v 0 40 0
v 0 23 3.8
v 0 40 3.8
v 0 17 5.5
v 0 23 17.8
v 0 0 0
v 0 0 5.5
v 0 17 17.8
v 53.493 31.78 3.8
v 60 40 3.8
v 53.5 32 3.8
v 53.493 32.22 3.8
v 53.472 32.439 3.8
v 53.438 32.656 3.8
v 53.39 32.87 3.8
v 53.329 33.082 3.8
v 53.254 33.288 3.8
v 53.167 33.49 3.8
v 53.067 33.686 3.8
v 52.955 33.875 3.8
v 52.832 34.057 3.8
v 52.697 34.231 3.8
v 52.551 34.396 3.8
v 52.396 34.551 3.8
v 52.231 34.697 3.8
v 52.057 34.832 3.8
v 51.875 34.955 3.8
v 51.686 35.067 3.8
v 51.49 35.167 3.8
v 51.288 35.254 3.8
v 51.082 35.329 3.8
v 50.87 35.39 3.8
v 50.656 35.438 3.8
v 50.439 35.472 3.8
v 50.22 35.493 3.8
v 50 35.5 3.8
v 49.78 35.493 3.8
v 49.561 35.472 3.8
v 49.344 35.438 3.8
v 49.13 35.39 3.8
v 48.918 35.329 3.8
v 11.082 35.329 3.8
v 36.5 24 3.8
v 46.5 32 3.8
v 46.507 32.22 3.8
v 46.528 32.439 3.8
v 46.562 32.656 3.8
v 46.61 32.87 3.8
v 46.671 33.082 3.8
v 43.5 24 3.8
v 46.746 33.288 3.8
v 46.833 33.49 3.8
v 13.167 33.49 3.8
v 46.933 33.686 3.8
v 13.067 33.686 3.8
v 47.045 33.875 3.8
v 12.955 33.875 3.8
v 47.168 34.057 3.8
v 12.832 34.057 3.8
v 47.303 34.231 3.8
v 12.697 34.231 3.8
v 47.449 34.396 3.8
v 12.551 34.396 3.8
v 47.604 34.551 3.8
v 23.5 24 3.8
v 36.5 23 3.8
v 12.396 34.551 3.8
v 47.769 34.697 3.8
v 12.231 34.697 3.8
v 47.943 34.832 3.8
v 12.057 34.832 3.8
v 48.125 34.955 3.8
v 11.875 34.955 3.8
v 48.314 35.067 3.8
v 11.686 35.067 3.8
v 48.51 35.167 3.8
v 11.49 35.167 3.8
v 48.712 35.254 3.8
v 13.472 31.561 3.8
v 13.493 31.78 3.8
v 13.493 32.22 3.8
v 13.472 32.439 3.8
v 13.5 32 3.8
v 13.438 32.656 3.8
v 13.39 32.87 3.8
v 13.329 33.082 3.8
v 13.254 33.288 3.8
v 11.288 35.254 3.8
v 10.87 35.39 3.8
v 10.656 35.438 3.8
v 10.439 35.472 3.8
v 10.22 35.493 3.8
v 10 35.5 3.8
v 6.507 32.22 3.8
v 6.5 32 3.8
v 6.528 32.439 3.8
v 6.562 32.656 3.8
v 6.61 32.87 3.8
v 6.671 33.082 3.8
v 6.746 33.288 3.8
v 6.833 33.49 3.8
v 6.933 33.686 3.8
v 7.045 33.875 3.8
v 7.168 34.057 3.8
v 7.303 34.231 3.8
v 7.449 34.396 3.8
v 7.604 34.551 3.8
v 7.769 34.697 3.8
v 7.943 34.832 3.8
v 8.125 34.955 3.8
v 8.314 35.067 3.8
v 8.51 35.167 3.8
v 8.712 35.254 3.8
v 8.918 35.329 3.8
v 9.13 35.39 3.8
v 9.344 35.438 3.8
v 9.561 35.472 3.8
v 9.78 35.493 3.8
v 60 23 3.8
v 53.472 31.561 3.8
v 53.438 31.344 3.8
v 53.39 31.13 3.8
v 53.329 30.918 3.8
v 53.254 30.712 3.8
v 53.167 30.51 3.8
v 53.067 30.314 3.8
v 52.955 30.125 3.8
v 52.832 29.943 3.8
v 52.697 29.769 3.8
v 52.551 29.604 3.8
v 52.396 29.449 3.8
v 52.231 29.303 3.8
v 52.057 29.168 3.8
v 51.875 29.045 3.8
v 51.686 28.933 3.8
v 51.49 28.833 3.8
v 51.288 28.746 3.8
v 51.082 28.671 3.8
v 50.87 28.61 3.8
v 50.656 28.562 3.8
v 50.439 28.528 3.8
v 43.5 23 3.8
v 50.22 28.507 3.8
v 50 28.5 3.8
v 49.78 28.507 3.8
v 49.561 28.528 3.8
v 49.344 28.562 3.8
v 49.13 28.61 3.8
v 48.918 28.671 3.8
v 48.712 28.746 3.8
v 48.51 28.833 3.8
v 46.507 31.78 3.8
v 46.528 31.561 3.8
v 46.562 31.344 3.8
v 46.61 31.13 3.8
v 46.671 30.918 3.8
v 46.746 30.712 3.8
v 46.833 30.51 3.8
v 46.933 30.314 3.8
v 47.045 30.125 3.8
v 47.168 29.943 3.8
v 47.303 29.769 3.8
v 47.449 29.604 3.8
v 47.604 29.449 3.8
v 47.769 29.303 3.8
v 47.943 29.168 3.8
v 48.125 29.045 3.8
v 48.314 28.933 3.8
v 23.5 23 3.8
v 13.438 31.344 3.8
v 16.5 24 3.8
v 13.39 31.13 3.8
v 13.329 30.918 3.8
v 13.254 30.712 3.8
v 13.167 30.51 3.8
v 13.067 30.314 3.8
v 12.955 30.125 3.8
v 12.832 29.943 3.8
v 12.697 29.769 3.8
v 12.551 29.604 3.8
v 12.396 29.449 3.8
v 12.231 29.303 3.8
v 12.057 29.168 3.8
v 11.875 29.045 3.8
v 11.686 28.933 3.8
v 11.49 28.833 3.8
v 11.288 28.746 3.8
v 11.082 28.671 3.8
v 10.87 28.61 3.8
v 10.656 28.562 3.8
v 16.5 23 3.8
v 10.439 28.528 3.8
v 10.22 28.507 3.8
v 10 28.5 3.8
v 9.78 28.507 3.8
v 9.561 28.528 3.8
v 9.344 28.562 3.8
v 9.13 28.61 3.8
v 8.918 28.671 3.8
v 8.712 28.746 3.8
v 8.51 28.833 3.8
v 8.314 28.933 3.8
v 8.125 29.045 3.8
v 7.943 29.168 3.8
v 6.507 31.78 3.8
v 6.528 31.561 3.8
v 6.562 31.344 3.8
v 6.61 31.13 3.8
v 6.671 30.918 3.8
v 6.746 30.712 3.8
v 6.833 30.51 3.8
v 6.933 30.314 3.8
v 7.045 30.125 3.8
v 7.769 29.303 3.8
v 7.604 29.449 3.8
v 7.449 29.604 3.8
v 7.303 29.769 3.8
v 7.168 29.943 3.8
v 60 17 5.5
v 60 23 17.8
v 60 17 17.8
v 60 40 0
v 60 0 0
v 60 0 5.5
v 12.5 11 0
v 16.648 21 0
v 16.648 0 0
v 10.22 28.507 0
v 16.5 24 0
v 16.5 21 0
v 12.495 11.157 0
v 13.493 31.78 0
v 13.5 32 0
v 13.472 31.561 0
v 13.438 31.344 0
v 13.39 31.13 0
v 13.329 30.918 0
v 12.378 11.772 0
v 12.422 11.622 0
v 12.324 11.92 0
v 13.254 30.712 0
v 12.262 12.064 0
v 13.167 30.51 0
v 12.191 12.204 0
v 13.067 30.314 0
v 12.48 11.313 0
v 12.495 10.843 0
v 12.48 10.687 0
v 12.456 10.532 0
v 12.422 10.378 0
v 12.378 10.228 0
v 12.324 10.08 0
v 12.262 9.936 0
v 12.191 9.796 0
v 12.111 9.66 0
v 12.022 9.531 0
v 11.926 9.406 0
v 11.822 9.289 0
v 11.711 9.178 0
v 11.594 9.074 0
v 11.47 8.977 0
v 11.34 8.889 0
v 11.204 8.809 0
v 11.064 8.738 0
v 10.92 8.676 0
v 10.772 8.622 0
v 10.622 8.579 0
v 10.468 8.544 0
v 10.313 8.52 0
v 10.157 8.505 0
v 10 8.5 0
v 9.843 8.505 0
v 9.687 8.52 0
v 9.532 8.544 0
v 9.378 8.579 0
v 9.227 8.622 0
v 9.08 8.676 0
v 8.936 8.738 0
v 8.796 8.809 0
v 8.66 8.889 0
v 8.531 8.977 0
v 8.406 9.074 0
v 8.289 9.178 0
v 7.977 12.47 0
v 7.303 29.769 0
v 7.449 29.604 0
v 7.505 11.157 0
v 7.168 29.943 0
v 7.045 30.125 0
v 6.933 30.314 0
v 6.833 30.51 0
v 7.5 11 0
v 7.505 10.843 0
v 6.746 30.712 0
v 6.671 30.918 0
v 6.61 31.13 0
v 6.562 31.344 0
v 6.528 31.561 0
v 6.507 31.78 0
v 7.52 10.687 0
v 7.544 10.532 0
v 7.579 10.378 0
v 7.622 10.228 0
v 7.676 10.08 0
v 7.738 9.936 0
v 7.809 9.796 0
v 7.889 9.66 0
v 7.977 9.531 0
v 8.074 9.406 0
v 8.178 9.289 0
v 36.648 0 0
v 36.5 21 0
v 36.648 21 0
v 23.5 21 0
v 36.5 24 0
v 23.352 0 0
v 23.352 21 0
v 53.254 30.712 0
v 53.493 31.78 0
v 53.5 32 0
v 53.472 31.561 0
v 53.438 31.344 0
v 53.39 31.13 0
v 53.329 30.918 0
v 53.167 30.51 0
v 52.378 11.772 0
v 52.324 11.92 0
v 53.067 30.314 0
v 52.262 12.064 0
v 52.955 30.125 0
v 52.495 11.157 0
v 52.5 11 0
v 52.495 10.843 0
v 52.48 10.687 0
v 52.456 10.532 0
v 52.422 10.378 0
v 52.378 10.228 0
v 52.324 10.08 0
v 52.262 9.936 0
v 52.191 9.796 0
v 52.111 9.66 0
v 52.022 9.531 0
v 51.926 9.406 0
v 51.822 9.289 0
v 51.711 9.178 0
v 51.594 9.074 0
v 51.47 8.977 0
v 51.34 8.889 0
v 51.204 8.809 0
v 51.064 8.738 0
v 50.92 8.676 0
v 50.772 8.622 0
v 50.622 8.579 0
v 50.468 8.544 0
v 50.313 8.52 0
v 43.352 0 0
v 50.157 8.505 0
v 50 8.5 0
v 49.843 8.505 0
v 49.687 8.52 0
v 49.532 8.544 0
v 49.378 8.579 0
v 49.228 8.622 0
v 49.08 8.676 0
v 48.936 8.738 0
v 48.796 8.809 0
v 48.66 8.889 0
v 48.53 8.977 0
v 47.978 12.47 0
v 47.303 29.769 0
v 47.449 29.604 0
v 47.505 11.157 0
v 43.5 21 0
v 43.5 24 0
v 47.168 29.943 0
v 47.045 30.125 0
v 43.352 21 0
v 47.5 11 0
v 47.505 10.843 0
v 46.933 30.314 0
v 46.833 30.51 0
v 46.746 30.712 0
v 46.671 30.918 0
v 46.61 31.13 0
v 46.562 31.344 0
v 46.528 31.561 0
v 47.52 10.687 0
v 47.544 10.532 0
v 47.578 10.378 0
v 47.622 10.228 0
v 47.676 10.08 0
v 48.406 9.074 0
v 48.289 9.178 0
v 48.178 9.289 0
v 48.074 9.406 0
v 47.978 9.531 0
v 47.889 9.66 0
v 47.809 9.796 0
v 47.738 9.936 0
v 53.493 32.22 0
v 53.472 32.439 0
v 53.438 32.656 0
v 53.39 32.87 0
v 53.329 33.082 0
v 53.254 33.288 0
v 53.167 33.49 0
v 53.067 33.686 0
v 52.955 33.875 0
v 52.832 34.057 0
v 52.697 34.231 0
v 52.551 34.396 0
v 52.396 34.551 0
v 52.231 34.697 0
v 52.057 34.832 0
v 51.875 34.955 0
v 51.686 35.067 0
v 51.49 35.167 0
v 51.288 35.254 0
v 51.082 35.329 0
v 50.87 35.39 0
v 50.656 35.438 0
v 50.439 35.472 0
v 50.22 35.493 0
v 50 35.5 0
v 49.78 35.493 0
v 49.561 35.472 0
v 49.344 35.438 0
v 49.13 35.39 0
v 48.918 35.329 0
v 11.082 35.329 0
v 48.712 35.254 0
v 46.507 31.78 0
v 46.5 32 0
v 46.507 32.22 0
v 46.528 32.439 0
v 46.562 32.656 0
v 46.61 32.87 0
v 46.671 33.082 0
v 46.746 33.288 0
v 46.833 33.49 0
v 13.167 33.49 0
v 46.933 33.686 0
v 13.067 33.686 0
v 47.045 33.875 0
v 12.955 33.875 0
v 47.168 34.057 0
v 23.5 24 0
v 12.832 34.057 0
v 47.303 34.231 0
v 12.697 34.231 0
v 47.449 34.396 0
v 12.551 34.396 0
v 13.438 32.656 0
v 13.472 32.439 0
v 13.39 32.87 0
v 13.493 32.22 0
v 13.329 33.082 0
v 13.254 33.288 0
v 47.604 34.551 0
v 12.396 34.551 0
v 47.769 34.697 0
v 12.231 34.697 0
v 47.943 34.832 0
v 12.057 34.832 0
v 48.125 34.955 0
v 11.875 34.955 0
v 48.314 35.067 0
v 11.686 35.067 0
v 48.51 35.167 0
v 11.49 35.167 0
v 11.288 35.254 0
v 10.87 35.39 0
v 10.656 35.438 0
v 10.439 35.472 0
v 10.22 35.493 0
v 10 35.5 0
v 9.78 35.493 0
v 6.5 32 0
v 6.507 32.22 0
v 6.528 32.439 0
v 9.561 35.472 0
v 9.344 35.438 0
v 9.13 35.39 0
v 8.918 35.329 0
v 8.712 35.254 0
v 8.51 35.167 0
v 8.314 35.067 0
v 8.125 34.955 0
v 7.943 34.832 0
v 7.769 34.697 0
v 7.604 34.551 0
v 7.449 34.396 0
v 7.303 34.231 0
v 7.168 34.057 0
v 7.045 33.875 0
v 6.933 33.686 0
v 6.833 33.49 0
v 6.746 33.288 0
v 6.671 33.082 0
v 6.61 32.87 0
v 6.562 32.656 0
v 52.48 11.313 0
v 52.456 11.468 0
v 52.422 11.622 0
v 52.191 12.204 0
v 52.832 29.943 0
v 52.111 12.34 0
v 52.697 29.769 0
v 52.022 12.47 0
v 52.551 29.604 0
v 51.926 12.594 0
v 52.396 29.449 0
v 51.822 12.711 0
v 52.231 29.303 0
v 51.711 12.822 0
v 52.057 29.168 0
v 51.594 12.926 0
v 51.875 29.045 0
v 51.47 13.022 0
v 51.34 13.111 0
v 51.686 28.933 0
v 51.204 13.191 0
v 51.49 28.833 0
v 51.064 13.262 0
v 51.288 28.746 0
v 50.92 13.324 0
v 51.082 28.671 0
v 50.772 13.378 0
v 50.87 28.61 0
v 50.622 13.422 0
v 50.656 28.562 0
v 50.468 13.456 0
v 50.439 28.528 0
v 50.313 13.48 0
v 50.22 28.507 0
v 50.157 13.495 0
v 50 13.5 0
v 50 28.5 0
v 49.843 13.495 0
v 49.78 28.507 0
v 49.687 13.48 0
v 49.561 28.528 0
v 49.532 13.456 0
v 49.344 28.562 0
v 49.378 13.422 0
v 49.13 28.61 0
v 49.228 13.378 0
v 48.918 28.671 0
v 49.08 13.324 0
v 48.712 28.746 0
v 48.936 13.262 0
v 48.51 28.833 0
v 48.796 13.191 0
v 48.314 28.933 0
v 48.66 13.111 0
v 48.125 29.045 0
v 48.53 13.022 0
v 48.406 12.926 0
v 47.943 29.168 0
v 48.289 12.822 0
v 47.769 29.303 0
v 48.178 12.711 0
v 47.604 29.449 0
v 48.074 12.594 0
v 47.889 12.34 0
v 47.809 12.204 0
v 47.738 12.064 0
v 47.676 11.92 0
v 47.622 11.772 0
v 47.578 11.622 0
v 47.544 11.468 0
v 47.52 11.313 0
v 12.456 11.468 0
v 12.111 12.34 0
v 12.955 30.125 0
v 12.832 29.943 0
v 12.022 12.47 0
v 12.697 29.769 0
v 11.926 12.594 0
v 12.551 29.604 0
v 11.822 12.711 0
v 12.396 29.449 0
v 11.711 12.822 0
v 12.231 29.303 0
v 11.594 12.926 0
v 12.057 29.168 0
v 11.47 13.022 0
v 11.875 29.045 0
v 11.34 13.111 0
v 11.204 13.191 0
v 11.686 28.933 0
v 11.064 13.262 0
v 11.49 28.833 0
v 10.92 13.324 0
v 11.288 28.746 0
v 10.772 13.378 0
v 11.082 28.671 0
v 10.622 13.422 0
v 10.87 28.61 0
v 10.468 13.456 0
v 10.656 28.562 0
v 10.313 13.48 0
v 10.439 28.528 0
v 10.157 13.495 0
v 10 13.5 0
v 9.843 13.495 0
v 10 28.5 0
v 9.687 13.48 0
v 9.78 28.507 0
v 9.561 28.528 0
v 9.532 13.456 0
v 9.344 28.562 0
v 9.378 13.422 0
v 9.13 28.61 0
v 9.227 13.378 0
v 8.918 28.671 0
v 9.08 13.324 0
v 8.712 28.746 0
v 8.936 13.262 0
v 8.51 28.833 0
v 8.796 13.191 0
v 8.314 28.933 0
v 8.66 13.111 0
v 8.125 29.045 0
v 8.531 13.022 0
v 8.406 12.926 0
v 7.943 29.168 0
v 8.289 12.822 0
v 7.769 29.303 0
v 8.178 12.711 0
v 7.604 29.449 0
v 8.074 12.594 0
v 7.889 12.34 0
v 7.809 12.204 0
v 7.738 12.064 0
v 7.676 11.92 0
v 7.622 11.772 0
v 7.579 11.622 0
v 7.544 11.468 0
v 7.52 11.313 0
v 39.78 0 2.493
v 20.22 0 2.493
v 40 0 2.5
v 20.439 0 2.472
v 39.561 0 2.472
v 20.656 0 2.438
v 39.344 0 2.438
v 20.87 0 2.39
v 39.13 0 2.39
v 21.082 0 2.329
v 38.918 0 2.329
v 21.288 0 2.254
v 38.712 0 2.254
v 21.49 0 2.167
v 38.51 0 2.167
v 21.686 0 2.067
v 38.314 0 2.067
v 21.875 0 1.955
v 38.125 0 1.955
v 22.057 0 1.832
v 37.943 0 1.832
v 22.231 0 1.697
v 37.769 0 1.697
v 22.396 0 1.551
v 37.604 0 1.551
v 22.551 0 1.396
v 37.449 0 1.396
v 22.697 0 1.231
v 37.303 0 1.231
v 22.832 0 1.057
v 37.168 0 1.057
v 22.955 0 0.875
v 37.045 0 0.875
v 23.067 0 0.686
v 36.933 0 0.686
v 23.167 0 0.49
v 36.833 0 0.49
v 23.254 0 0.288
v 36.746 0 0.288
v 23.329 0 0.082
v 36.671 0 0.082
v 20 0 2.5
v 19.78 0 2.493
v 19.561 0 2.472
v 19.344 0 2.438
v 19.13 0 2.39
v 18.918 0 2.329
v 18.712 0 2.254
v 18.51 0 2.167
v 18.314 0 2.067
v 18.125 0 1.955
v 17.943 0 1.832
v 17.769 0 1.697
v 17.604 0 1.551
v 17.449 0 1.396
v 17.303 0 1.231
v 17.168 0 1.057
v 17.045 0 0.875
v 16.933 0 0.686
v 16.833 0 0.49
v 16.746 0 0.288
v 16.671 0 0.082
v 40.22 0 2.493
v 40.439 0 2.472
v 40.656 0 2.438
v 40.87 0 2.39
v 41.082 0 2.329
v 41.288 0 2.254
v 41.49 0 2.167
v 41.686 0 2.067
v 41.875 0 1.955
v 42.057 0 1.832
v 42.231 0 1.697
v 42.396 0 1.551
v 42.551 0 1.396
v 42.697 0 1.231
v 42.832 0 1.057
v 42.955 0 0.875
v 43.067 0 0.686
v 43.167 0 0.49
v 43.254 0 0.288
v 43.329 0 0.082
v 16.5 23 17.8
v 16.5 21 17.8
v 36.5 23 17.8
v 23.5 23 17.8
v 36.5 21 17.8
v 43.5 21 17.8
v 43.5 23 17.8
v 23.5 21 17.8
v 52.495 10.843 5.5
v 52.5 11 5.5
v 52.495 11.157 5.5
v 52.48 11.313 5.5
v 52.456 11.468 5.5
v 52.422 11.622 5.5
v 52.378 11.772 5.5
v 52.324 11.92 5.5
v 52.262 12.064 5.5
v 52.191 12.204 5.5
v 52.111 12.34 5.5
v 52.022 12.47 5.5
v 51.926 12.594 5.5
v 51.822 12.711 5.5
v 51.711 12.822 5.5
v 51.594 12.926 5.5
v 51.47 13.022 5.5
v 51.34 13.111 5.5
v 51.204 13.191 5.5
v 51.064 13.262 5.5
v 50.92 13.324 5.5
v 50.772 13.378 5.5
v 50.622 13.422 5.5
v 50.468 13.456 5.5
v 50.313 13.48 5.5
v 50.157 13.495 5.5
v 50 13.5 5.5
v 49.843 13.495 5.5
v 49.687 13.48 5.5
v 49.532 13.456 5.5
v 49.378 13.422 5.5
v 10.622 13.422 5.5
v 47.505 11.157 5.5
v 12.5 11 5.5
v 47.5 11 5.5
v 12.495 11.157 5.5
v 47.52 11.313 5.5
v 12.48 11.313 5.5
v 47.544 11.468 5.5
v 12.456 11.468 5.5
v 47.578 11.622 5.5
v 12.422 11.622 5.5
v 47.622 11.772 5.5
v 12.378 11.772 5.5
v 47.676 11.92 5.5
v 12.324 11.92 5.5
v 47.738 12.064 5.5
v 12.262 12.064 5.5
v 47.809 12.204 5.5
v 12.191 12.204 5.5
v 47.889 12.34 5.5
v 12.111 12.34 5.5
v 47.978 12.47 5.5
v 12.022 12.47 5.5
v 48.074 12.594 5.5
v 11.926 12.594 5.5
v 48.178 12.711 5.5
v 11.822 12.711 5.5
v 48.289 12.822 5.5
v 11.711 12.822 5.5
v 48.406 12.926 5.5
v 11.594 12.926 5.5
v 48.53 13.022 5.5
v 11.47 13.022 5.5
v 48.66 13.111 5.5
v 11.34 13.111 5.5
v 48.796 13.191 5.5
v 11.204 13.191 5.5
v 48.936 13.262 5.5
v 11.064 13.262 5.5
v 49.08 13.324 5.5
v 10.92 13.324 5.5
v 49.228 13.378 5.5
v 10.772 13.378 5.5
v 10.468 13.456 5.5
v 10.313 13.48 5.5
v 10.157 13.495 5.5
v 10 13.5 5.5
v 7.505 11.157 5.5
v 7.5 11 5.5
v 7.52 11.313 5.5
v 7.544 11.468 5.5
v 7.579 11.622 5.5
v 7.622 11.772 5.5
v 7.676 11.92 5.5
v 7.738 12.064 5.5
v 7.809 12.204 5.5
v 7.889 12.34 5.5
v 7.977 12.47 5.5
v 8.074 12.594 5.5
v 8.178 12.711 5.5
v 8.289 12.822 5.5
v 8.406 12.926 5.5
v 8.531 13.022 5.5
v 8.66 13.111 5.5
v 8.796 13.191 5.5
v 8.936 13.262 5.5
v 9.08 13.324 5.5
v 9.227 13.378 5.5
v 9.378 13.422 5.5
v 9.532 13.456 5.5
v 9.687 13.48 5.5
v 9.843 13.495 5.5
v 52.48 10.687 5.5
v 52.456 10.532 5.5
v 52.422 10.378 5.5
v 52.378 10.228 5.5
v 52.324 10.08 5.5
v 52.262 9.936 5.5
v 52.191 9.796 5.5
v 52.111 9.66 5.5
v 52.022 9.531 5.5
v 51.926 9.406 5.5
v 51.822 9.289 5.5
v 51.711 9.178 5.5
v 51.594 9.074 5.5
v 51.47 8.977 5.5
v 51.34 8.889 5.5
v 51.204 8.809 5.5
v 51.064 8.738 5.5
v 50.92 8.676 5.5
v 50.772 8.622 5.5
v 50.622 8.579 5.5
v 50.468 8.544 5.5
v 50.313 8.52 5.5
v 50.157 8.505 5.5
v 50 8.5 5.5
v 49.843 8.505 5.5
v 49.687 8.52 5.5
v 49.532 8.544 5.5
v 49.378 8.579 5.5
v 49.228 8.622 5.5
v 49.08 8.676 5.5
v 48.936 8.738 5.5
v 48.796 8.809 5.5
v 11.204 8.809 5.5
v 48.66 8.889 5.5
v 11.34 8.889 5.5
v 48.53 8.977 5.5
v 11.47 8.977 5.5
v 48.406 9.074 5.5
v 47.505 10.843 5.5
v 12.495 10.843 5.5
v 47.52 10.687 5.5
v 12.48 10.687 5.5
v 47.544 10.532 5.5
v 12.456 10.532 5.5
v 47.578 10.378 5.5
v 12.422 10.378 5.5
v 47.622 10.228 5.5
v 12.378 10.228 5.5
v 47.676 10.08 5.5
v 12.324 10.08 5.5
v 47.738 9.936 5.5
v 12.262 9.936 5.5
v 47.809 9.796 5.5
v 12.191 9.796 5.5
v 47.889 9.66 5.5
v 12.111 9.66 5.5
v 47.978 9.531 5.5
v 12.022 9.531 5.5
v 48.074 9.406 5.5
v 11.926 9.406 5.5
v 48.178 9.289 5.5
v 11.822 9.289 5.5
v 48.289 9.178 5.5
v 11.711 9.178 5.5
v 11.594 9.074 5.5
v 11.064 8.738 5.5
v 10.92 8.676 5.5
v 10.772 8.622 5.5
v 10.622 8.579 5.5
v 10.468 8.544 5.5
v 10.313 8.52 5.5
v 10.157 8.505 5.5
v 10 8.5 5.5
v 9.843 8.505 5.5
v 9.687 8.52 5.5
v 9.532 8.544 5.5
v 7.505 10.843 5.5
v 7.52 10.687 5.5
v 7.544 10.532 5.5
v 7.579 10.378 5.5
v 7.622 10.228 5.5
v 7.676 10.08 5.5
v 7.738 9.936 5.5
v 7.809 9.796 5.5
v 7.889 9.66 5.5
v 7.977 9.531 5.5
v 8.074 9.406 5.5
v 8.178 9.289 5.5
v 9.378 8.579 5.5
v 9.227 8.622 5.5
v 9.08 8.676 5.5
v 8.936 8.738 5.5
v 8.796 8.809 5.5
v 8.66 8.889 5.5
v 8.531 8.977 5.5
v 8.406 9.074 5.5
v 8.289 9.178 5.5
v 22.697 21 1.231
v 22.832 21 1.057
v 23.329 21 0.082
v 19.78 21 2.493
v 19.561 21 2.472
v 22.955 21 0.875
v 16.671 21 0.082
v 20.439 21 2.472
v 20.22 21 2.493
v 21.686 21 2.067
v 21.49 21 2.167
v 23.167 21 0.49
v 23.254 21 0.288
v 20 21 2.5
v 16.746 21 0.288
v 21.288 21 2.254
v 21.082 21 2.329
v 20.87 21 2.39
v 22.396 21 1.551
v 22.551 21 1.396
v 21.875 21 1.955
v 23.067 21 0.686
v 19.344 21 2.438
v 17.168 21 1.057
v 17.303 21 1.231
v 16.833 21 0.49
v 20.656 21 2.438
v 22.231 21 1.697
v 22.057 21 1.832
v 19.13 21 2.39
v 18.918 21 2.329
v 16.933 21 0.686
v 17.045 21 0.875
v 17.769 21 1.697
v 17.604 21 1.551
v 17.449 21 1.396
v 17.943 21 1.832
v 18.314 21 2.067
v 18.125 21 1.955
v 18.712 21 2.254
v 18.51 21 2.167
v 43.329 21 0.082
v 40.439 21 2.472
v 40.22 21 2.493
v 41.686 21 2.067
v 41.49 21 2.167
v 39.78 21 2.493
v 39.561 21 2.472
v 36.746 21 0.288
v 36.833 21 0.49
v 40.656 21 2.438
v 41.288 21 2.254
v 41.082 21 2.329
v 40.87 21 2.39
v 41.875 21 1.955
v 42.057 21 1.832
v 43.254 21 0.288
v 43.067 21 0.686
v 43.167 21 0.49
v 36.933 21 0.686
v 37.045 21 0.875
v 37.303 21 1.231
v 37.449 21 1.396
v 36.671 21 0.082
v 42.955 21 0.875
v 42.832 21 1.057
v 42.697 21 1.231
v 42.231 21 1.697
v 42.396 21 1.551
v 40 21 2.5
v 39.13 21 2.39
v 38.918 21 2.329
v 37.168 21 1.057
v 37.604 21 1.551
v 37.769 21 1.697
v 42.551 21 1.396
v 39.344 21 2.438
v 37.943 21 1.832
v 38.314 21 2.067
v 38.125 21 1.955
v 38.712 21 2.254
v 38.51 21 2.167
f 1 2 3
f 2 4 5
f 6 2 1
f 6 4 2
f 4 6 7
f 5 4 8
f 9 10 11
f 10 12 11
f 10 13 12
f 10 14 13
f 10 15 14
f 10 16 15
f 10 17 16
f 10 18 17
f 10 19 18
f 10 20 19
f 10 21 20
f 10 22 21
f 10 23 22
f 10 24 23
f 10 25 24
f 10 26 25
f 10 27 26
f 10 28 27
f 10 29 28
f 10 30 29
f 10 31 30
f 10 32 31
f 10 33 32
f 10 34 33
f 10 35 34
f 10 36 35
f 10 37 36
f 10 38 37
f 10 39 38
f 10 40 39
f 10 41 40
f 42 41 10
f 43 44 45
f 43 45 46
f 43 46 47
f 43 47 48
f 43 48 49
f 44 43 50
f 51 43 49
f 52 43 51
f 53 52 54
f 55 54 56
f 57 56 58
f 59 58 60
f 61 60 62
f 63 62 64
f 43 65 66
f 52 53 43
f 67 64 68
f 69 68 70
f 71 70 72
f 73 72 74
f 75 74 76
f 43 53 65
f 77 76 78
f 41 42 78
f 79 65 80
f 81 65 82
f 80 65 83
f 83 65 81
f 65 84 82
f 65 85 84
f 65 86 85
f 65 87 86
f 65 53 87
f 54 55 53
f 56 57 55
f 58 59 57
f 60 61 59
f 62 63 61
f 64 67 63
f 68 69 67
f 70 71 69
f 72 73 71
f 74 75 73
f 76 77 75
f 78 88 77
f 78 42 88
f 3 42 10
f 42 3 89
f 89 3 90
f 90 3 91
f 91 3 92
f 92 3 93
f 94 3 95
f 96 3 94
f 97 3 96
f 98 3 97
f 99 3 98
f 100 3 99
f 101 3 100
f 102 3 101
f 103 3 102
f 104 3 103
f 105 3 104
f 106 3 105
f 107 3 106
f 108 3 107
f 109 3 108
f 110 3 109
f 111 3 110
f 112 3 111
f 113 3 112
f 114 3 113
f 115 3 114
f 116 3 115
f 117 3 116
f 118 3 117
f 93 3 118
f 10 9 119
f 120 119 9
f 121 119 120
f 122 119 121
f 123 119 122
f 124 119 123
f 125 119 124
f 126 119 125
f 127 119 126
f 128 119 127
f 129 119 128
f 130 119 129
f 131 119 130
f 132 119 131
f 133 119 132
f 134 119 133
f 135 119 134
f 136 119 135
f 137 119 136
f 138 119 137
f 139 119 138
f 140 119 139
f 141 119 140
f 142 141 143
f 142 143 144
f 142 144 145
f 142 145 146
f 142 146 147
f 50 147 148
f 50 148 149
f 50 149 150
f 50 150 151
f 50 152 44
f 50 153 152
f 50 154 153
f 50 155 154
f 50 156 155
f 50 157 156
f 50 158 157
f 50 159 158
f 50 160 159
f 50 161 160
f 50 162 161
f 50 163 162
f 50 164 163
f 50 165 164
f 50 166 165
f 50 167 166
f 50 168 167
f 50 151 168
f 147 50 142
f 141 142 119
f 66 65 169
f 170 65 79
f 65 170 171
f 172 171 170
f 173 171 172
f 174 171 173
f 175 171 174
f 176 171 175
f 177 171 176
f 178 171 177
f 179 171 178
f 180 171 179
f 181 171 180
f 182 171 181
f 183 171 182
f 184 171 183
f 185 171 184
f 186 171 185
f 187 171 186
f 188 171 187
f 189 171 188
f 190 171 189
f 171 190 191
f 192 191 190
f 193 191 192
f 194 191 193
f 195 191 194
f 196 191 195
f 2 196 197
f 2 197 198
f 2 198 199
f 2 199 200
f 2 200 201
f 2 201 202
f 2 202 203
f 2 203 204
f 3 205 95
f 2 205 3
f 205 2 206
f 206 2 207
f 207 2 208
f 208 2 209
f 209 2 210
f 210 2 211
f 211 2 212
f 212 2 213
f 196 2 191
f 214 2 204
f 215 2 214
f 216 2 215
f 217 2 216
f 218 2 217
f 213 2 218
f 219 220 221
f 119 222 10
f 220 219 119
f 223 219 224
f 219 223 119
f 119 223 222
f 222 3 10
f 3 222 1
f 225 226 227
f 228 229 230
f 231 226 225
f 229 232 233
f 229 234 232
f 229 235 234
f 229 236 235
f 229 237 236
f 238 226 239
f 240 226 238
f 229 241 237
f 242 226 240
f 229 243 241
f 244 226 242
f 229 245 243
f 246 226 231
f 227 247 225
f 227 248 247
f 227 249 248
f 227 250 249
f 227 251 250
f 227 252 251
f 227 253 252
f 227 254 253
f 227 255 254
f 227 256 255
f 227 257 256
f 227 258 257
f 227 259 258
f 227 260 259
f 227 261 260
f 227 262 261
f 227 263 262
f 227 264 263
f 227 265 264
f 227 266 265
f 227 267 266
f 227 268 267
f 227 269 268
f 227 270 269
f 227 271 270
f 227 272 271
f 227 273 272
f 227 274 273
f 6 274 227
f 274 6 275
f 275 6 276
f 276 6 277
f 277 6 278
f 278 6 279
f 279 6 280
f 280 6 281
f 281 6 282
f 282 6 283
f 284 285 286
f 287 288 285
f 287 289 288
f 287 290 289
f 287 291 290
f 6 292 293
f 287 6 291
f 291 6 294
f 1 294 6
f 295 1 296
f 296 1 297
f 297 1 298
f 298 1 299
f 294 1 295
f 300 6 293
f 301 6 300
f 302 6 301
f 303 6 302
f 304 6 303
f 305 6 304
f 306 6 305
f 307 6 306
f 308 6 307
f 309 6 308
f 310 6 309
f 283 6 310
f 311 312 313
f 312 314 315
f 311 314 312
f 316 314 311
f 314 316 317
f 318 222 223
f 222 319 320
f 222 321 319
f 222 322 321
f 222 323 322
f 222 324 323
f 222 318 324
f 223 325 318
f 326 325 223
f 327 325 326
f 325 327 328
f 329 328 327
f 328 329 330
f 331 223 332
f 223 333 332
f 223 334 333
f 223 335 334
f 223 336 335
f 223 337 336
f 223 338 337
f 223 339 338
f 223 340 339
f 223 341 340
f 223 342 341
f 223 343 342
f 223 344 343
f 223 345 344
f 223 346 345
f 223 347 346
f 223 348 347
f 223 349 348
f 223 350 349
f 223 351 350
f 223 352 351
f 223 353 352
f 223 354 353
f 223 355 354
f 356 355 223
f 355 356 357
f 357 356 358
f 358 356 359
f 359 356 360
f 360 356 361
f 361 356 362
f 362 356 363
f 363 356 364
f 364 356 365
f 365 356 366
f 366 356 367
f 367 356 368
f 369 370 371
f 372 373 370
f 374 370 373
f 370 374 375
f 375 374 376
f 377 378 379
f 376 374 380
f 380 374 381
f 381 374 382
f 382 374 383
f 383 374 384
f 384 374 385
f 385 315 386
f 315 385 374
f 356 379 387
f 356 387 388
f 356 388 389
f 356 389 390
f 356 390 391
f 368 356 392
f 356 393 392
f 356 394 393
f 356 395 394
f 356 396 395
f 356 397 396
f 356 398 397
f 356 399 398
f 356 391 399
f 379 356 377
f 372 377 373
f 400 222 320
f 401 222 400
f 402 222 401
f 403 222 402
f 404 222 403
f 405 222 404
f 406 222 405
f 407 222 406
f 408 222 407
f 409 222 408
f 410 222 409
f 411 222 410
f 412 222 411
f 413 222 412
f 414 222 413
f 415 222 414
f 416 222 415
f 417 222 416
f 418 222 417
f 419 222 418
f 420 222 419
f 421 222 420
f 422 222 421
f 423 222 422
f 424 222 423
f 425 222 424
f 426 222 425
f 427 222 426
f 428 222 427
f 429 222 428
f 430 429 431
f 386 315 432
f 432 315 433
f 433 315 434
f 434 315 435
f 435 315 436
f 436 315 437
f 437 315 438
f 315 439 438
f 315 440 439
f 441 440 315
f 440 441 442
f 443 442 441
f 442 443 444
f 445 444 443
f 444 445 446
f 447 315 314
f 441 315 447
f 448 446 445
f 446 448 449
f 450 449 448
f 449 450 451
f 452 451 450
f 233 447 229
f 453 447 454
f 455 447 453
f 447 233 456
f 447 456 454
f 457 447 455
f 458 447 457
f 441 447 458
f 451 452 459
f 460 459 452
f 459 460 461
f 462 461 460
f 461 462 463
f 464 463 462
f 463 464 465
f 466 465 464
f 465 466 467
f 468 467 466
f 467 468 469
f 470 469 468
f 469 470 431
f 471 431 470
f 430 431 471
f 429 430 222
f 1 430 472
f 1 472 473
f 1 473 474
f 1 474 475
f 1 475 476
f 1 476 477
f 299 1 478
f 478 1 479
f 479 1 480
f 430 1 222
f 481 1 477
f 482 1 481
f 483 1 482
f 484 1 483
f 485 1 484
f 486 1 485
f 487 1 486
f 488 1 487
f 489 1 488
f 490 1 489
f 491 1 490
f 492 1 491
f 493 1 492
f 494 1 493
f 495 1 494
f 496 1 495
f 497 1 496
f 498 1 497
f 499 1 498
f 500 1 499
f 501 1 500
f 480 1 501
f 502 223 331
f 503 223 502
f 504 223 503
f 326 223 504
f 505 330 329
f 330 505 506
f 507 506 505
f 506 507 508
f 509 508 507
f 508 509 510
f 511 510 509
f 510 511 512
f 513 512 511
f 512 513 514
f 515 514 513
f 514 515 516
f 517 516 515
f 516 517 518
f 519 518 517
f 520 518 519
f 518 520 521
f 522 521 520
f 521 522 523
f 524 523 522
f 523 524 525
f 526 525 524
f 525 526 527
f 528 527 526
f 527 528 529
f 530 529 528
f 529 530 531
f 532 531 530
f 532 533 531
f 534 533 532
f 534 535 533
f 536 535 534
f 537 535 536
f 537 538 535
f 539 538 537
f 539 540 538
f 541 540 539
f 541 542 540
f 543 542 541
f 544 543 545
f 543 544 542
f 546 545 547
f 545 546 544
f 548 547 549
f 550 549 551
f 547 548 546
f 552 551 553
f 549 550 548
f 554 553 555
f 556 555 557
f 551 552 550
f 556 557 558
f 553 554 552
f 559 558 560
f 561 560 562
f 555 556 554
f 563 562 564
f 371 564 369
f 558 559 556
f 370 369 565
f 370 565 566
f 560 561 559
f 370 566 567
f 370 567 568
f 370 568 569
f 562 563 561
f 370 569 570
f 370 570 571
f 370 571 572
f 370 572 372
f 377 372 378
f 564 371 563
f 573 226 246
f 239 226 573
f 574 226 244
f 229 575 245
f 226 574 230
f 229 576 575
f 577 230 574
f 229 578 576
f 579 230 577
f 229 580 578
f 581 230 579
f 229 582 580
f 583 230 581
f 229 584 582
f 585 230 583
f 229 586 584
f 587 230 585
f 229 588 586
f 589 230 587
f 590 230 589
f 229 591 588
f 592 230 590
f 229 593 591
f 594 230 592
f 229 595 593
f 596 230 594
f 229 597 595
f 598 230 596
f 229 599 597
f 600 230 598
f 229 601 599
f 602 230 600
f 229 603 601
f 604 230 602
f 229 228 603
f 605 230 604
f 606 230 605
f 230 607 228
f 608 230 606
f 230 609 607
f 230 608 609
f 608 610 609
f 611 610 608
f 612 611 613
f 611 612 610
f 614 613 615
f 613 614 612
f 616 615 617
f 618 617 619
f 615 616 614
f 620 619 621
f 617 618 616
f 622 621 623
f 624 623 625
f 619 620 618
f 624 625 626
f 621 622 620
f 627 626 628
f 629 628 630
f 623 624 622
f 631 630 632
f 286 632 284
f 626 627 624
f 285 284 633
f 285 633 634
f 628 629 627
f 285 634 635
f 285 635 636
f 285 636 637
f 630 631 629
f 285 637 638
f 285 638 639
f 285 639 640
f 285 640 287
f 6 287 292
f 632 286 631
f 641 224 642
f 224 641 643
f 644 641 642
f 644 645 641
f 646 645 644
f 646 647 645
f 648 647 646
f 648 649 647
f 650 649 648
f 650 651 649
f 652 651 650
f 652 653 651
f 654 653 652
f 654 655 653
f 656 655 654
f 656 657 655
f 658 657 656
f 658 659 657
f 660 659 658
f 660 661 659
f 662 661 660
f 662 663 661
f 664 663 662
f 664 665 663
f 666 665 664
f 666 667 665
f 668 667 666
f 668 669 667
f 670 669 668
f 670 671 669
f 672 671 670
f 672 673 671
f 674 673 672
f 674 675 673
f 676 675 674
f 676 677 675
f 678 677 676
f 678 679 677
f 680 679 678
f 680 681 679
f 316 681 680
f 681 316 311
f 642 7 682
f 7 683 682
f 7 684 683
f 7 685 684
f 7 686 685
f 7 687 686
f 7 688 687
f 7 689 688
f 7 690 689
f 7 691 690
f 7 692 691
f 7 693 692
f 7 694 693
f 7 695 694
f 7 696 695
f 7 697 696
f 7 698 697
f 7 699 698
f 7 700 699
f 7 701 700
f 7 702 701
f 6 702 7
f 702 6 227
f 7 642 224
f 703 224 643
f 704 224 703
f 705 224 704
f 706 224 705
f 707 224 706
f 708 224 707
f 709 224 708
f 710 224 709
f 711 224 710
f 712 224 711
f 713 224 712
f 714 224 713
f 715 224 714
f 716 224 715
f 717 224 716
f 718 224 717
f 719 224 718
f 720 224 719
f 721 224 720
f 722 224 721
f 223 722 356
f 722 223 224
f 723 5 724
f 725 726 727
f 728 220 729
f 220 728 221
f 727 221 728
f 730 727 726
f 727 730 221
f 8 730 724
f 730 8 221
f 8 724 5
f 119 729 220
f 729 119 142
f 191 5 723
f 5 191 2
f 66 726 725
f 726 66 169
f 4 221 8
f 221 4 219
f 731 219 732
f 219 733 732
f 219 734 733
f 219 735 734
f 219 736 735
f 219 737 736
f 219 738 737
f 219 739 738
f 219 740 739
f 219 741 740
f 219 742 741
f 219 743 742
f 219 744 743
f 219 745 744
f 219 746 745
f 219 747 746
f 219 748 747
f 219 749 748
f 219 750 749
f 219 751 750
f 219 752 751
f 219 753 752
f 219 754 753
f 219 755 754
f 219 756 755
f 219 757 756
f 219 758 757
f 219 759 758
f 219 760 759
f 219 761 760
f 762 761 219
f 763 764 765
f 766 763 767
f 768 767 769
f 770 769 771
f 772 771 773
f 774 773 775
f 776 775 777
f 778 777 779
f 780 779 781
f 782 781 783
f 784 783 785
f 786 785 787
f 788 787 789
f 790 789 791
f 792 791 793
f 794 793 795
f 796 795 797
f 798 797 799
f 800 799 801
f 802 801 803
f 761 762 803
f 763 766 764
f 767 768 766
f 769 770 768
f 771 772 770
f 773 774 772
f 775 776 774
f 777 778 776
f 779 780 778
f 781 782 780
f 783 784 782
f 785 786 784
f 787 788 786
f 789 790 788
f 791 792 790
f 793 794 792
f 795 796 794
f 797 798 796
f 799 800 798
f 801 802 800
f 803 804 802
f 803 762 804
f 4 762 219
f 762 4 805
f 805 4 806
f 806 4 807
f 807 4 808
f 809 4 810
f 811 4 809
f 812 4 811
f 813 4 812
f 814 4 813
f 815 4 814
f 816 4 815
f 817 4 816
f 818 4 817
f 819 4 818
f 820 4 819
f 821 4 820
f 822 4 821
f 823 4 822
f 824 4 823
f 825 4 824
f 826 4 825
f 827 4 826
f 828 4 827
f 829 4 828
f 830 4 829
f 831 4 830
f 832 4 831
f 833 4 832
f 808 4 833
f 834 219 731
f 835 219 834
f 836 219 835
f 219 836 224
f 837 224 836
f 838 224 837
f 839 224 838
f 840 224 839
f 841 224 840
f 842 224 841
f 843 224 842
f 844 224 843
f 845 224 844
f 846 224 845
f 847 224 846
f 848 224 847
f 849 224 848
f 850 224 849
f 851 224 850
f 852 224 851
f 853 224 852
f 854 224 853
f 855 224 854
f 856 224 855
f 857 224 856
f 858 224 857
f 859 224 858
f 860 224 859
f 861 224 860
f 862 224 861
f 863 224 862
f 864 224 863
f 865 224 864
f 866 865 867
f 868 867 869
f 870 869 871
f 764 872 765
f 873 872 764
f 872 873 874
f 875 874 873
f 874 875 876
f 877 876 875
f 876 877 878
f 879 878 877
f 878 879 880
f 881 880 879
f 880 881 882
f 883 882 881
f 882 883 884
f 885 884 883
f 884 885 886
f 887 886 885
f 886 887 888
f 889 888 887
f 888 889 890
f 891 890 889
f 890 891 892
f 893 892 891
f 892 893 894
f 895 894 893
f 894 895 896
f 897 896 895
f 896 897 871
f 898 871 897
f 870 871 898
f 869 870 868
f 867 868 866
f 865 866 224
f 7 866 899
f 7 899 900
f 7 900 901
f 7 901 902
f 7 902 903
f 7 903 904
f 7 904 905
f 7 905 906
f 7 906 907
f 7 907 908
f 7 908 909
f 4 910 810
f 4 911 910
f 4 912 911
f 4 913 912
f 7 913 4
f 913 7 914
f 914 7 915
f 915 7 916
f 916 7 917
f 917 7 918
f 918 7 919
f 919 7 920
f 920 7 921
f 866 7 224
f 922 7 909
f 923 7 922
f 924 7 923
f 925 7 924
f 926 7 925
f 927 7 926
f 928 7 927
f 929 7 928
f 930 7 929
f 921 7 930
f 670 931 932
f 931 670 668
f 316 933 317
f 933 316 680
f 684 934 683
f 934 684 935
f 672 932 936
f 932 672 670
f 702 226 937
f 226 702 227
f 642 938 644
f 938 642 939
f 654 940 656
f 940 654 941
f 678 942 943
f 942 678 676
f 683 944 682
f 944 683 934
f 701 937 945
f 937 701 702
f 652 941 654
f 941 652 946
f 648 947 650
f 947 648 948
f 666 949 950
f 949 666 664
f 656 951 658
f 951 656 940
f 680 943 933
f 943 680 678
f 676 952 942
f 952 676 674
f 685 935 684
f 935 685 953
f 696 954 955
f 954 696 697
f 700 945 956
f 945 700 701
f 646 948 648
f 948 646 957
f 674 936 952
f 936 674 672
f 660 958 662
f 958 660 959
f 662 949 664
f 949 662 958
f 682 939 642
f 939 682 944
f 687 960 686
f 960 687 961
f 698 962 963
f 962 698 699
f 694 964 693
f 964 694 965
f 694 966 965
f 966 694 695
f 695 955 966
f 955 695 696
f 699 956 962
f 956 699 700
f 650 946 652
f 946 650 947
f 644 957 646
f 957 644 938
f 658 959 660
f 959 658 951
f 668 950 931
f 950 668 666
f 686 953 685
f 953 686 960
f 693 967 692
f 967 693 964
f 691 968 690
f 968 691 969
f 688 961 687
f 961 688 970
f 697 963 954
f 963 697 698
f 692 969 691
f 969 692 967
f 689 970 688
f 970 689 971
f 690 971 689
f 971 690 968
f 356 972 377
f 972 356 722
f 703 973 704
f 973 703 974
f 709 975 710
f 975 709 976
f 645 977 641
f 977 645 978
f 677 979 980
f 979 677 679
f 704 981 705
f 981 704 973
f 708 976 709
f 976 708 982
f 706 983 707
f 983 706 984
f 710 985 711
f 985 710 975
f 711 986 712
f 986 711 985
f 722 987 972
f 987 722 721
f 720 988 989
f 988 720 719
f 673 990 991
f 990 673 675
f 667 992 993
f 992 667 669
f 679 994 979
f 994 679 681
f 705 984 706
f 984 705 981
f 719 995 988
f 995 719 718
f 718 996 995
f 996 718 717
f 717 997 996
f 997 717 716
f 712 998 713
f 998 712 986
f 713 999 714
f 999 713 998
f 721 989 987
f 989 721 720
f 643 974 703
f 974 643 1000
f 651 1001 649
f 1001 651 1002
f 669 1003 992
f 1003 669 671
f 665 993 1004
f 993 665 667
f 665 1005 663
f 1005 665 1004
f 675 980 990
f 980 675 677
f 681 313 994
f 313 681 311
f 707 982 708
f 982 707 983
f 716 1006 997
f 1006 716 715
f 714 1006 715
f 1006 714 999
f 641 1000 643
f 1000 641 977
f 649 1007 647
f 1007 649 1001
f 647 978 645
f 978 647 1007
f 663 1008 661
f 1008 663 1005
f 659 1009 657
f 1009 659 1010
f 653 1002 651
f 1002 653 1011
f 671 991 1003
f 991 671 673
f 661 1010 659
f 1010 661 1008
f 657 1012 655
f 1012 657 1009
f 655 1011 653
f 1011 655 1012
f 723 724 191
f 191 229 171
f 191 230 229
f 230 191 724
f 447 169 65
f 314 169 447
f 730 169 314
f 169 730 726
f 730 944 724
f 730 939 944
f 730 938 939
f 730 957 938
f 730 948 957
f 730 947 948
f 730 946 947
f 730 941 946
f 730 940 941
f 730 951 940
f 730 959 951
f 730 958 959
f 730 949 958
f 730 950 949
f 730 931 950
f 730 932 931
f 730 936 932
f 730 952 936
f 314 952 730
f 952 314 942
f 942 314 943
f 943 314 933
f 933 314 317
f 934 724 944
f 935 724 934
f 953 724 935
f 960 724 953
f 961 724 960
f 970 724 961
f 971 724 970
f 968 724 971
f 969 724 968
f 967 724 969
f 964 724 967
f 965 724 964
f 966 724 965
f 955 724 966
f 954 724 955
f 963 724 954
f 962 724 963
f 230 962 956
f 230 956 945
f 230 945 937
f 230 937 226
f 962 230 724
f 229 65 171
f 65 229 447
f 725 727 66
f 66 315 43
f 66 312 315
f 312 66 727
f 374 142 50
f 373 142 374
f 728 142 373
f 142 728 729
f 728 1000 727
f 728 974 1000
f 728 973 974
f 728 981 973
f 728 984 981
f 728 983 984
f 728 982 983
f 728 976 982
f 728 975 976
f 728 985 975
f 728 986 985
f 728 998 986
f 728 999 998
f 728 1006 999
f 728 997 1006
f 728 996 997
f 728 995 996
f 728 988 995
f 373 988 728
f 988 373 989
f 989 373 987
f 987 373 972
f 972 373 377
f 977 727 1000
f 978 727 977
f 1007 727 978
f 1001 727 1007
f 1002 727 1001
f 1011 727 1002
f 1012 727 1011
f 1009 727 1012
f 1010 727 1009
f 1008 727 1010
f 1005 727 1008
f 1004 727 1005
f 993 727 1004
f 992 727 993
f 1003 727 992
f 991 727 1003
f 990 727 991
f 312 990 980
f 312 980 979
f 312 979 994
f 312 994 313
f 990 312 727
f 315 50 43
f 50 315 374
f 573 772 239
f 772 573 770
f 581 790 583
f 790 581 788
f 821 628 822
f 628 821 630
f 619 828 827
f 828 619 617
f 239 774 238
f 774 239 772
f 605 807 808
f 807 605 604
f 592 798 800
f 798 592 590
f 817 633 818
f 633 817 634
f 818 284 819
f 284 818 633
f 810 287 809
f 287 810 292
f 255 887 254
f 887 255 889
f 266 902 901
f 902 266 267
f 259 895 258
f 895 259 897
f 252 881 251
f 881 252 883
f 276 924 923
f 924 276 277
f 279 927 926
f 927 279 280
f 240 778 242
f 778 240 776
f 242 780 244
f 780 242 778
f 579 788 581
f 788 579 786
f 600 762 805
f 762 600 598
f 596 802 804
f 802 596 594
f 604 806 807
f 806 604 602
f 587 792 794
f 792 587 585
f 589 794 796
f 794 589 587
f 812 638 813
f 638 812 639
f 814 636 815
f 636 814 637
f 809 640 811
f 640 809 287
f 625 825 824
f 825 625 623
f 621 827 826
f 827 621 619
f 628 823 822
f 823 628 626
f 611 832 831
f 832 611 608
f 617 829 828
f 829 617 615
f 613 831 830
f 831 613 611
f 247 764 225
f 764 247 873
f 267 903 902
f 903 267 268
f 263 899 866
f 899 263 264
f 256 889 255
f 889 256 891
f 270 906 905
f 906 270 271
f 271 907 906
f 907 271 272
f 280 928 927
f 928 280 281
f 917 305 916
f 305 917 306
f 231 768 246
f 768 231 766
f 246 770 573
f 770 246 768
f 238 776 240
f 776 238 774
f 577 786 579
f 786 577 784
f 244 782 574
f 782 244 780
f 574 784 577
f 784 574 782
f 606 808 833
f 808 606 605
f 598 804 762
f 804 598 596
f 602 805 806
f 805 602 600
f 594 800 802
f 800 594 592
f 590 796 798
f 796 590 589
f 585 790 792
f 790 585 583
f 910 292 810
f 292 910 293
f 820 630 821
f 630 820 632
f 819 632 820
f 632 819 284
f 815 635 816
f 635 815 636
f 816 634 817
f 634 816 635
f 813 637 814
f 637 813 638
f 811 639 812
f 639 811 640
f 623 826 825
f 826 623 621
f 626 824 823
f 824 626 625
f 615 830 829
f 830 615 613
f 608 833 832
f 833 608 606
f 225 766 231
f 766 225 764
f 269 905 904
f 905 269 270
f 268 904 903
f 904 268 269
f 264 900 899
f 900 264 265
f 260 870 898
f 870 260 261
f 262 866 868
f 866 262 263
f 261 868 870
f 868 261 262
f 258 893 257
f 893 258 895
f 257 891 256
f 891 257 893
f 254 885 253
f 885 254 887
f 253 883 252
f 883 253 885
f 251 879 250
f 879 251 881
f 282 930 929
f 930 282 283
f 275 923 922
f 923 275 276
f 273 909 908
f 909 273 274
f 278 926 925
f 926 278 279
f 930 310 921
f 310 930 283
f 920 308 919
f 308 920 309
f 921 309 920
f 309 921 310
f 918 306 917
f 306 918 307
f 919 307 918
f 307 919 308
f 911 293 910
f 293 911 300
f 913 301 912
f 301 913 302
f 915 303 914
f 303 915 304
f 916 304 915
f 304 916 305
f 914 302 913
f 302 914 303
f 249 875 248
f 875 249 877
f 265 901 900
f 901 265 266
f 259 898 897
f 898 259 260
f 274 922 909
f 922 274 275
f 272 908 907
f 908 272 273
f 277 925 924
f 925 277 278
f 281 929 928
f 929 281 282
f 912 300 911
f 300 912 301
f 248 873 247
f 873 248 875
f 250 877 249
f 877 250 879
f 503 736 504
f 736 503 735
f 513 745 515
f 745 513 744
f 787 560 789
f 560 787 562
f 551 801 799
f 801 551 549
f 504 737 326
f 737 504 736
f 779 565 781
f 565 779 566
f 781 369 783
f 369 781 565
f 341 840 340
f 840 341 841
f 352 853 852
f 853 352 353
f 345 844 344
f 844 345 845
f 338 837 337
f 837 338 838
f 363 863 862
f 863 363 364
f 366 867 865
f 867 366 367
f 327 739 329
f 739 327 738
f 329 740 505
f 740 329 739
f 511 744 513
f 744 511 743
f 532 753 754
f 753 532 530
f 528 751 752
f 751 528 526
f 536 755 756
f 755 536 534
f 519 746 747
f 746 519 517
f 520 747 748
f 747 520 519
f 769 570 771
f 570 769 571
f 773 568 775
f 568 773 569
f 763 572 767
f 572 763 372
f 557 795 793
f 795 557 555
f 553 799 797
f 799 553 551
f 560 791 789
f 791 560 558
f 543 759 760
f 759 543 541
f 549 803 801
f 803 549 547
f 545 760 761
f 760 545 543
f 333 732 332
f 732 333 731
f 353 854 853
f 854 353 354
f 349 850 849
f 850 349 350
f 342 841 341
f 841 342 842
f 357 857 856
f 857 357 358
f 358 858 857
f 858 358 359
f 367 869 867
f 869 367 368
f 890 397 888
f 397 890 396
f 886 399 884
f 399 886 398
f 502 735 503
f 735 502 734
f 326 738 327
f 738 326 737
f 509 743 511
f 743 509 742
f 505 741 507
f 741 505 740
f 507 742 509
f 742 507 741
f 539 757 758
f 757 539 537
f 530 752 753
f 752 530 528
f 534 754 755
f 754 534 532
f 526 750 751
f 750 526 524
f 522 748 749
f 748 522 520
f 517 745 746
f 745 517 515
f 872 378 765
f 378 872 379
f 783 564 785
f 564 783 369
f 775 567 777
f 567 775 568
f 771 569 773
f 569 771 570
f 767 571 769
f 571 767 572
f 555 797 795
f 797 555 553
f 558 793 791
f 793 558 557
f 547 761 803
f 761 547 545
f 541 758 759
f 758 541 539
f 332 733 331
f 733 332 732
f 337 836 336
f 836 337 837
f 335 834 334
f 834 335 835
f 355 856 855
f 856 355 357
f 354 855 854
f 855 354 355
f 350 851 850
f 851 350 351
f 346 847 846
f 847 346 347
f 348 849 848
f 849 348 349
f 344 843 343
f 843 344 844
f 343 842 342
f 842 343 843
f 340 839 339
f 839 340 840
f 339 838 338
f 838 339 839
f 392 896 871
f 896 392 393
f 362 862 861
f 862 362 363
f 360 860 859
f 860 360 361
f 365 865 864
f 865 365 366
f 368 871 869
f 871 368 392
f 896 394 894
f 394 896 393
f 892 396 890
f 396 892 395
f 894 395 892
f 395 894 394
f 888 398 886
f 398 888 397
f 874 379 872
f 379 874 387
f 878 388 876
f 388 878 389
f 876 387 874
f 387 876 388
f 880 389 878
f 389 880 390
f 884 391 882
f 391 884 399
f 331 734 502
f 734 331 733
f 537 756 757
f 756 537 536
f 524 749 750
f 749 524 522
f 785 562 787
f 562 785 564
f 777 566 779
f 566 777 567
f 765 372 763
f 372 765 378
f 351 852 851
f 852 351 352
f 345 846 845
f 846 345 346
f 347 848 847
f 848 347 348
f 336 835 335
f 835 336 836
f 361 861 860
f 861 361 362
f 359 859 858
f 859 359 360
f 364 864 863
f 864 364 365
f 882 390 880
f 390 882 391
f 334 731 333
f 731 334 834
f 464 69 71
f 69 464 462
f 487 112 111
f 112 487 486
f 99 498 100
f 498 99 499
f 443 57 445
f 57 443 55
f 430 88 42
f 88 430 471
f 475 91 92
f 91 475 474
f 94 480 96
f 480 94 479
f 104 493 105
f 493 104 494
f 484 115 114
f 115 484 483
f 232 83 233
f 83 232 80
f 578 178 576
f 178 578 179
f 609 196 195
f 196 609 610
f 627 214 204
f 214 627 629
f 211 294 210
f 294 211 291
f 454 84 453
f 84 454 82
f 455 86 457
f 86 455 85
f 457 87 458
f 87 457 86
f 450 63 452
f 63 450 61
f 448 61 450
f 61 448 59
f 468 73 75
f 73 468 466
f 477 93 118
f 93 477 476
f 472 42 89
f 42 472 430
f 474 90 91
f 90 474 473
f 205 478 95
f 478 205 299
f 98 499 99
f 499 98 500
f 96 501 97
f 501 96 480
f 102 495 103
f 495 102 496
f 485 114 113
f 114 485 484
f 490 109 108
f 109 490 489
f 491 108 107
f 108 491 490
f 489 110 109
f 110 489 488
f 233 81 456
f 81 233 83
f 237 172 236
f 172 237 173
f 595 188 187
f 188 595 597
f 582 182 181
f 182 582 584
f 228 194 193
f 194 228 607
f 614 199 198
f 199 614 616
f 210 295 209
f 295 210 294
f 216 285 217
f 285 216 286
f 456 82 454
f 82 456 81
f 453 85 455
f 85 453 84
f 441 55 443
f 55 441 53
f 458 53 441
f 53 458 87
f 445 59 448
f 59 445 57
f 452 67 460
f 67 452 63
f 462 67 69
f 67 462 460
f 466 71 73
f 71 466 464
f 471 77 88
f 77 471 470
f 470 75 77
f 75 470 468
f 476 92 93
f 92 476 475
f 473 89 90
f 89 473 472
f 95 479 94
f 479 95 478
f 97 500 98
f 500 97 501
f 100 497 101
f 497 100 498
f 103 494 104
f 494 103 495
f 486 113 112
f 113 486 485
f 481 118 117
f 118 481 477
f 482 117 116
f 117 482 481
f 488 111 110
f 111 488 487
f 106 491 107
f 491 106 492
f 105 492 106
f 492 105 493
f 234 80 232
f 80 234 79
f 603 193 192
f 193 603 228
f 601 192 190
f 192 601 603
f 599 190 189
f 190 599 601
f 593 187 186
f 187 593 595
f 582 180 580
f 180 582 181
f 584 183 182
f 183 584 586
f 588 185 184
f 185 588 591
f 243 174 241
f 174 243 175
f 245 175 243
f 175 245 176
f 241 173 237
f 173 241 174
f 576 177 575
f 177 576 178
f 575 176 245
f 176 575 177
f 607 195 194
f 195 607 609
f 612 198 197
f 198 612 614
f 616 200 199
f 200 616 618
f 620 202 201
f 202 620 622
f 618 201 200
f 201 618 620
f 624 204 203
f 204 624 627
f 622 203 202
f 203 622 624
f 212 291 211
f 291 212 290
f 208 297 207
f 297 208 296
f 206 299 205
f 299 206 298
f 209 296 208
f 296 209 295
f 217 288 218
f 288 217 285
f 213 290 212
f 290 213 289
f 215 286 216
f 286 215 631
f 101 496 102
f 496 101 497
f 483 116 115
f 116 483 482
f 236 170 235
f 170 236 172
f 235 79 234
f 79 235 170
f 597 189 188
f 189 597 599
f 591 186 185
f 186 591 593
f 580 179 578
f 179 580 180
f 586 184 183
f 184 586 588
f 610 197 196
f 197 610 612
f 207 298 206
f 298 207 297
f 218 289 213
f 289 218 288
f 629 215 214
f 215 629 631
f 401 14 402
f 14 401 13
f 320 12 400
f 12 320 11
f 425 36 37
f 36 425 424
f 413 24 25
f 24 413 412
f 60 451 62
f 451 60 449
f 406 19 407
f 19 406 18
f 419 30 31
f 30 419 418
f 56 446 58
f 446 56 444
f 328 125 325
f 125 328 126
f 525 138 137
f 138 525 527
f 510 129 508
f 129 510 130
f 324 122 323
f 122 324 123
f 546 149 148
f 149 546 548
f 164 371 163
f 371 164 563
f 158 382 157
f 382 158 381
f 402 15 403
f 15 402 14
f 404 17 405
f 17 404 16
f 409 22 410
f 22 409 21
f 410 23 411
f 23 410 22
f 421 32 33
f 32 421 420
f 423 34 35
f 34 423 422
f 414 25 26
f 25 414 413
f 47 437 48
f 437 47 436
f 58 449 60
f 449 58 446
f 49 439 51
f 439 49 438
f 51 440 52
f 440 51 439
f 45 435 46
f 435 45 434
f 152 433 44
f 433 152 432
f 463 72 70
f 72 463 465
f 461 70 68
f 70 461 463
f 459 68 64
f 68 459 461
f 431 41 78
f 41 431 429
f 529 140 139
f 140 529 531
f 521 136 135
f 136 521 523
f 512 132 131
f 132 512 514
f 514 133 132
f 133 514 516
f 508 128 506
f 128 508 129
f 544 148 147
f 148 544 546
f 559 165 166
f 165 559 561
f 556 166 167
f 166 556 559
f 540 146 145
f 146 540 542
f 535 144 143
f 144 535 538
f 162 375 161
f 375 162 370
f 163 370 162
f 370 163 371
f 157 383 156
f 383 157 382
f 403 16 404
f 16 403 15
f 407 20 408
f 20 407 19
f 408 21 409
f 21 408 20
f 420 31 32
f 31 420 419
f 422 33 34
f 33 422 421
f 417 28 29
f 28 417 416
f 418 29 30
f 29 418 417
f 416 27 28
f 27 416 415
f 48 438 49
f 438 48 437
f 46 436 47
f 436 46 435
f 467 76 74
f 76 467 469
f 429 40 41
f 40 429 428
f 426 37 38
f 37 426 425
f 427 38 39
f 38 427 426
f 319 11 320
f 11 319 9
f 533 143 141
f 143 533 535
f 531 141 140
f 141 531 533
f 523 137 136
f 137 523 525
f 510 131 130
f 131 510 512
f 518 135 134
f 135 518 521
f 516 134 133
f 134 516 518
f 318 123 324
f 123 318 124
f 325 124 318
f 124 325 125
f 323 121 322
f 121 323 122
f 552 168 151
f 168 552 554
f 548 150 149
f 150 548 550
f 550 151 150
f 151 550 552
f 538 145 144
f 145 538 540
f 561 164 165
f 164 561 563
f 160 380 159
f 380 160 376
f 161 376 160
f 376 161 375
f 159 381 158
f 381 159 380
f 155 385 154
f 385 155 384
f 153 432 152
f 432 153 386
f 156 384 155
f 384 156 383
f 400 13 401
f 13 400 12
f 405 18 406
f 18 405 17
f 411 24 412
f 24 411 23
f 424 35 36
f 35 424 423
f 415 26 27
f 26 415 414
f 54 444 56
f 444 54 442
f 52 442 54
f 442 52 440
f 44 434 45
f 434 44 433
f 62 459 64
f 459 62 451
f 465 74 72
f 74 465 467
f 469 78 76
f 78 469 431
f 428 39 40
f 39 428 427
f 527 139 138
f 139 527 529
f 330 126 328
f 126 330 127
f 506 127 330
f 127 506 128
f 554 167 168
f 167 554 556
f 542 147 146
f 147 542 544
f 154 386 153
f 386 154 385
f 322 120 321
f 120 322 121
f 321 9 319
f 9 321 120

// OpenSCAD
$fn=100;

module RobotBackpack(){
    difference(){
        union(){
            cube([60, 40, 3.8]);
            translate([0, 17, 3.8]) cube([60, 6, 14]);
            translate([0, 0, 3.8]) cube([60, 17, 1.7]);
        }
        
        
        translate([20, 0, -1]) rotate([-90, 0, 0]) cylinder(h=22, d=7);
        translate([40, 0, -1]) rotate([-90, 0, 0]) cylinder(h=22, d=7);
        
        translate([16.5, 21, 0]) cube([7, 3, 20]);
        translate([36.5, 21, 0]) cube([7, 3, 20]);

        translate([10, 11, 0]) cylinder(h=6, d=5);
        translate([50, 11, 0]) cylinder(h=6, d=5);
        
        translate([10, 32, 0]) cylinder(h=4, d=7);
        translate([50, 32, 0]) cylinder(h=4, d=7);
    }
}

RobotBackpack();
